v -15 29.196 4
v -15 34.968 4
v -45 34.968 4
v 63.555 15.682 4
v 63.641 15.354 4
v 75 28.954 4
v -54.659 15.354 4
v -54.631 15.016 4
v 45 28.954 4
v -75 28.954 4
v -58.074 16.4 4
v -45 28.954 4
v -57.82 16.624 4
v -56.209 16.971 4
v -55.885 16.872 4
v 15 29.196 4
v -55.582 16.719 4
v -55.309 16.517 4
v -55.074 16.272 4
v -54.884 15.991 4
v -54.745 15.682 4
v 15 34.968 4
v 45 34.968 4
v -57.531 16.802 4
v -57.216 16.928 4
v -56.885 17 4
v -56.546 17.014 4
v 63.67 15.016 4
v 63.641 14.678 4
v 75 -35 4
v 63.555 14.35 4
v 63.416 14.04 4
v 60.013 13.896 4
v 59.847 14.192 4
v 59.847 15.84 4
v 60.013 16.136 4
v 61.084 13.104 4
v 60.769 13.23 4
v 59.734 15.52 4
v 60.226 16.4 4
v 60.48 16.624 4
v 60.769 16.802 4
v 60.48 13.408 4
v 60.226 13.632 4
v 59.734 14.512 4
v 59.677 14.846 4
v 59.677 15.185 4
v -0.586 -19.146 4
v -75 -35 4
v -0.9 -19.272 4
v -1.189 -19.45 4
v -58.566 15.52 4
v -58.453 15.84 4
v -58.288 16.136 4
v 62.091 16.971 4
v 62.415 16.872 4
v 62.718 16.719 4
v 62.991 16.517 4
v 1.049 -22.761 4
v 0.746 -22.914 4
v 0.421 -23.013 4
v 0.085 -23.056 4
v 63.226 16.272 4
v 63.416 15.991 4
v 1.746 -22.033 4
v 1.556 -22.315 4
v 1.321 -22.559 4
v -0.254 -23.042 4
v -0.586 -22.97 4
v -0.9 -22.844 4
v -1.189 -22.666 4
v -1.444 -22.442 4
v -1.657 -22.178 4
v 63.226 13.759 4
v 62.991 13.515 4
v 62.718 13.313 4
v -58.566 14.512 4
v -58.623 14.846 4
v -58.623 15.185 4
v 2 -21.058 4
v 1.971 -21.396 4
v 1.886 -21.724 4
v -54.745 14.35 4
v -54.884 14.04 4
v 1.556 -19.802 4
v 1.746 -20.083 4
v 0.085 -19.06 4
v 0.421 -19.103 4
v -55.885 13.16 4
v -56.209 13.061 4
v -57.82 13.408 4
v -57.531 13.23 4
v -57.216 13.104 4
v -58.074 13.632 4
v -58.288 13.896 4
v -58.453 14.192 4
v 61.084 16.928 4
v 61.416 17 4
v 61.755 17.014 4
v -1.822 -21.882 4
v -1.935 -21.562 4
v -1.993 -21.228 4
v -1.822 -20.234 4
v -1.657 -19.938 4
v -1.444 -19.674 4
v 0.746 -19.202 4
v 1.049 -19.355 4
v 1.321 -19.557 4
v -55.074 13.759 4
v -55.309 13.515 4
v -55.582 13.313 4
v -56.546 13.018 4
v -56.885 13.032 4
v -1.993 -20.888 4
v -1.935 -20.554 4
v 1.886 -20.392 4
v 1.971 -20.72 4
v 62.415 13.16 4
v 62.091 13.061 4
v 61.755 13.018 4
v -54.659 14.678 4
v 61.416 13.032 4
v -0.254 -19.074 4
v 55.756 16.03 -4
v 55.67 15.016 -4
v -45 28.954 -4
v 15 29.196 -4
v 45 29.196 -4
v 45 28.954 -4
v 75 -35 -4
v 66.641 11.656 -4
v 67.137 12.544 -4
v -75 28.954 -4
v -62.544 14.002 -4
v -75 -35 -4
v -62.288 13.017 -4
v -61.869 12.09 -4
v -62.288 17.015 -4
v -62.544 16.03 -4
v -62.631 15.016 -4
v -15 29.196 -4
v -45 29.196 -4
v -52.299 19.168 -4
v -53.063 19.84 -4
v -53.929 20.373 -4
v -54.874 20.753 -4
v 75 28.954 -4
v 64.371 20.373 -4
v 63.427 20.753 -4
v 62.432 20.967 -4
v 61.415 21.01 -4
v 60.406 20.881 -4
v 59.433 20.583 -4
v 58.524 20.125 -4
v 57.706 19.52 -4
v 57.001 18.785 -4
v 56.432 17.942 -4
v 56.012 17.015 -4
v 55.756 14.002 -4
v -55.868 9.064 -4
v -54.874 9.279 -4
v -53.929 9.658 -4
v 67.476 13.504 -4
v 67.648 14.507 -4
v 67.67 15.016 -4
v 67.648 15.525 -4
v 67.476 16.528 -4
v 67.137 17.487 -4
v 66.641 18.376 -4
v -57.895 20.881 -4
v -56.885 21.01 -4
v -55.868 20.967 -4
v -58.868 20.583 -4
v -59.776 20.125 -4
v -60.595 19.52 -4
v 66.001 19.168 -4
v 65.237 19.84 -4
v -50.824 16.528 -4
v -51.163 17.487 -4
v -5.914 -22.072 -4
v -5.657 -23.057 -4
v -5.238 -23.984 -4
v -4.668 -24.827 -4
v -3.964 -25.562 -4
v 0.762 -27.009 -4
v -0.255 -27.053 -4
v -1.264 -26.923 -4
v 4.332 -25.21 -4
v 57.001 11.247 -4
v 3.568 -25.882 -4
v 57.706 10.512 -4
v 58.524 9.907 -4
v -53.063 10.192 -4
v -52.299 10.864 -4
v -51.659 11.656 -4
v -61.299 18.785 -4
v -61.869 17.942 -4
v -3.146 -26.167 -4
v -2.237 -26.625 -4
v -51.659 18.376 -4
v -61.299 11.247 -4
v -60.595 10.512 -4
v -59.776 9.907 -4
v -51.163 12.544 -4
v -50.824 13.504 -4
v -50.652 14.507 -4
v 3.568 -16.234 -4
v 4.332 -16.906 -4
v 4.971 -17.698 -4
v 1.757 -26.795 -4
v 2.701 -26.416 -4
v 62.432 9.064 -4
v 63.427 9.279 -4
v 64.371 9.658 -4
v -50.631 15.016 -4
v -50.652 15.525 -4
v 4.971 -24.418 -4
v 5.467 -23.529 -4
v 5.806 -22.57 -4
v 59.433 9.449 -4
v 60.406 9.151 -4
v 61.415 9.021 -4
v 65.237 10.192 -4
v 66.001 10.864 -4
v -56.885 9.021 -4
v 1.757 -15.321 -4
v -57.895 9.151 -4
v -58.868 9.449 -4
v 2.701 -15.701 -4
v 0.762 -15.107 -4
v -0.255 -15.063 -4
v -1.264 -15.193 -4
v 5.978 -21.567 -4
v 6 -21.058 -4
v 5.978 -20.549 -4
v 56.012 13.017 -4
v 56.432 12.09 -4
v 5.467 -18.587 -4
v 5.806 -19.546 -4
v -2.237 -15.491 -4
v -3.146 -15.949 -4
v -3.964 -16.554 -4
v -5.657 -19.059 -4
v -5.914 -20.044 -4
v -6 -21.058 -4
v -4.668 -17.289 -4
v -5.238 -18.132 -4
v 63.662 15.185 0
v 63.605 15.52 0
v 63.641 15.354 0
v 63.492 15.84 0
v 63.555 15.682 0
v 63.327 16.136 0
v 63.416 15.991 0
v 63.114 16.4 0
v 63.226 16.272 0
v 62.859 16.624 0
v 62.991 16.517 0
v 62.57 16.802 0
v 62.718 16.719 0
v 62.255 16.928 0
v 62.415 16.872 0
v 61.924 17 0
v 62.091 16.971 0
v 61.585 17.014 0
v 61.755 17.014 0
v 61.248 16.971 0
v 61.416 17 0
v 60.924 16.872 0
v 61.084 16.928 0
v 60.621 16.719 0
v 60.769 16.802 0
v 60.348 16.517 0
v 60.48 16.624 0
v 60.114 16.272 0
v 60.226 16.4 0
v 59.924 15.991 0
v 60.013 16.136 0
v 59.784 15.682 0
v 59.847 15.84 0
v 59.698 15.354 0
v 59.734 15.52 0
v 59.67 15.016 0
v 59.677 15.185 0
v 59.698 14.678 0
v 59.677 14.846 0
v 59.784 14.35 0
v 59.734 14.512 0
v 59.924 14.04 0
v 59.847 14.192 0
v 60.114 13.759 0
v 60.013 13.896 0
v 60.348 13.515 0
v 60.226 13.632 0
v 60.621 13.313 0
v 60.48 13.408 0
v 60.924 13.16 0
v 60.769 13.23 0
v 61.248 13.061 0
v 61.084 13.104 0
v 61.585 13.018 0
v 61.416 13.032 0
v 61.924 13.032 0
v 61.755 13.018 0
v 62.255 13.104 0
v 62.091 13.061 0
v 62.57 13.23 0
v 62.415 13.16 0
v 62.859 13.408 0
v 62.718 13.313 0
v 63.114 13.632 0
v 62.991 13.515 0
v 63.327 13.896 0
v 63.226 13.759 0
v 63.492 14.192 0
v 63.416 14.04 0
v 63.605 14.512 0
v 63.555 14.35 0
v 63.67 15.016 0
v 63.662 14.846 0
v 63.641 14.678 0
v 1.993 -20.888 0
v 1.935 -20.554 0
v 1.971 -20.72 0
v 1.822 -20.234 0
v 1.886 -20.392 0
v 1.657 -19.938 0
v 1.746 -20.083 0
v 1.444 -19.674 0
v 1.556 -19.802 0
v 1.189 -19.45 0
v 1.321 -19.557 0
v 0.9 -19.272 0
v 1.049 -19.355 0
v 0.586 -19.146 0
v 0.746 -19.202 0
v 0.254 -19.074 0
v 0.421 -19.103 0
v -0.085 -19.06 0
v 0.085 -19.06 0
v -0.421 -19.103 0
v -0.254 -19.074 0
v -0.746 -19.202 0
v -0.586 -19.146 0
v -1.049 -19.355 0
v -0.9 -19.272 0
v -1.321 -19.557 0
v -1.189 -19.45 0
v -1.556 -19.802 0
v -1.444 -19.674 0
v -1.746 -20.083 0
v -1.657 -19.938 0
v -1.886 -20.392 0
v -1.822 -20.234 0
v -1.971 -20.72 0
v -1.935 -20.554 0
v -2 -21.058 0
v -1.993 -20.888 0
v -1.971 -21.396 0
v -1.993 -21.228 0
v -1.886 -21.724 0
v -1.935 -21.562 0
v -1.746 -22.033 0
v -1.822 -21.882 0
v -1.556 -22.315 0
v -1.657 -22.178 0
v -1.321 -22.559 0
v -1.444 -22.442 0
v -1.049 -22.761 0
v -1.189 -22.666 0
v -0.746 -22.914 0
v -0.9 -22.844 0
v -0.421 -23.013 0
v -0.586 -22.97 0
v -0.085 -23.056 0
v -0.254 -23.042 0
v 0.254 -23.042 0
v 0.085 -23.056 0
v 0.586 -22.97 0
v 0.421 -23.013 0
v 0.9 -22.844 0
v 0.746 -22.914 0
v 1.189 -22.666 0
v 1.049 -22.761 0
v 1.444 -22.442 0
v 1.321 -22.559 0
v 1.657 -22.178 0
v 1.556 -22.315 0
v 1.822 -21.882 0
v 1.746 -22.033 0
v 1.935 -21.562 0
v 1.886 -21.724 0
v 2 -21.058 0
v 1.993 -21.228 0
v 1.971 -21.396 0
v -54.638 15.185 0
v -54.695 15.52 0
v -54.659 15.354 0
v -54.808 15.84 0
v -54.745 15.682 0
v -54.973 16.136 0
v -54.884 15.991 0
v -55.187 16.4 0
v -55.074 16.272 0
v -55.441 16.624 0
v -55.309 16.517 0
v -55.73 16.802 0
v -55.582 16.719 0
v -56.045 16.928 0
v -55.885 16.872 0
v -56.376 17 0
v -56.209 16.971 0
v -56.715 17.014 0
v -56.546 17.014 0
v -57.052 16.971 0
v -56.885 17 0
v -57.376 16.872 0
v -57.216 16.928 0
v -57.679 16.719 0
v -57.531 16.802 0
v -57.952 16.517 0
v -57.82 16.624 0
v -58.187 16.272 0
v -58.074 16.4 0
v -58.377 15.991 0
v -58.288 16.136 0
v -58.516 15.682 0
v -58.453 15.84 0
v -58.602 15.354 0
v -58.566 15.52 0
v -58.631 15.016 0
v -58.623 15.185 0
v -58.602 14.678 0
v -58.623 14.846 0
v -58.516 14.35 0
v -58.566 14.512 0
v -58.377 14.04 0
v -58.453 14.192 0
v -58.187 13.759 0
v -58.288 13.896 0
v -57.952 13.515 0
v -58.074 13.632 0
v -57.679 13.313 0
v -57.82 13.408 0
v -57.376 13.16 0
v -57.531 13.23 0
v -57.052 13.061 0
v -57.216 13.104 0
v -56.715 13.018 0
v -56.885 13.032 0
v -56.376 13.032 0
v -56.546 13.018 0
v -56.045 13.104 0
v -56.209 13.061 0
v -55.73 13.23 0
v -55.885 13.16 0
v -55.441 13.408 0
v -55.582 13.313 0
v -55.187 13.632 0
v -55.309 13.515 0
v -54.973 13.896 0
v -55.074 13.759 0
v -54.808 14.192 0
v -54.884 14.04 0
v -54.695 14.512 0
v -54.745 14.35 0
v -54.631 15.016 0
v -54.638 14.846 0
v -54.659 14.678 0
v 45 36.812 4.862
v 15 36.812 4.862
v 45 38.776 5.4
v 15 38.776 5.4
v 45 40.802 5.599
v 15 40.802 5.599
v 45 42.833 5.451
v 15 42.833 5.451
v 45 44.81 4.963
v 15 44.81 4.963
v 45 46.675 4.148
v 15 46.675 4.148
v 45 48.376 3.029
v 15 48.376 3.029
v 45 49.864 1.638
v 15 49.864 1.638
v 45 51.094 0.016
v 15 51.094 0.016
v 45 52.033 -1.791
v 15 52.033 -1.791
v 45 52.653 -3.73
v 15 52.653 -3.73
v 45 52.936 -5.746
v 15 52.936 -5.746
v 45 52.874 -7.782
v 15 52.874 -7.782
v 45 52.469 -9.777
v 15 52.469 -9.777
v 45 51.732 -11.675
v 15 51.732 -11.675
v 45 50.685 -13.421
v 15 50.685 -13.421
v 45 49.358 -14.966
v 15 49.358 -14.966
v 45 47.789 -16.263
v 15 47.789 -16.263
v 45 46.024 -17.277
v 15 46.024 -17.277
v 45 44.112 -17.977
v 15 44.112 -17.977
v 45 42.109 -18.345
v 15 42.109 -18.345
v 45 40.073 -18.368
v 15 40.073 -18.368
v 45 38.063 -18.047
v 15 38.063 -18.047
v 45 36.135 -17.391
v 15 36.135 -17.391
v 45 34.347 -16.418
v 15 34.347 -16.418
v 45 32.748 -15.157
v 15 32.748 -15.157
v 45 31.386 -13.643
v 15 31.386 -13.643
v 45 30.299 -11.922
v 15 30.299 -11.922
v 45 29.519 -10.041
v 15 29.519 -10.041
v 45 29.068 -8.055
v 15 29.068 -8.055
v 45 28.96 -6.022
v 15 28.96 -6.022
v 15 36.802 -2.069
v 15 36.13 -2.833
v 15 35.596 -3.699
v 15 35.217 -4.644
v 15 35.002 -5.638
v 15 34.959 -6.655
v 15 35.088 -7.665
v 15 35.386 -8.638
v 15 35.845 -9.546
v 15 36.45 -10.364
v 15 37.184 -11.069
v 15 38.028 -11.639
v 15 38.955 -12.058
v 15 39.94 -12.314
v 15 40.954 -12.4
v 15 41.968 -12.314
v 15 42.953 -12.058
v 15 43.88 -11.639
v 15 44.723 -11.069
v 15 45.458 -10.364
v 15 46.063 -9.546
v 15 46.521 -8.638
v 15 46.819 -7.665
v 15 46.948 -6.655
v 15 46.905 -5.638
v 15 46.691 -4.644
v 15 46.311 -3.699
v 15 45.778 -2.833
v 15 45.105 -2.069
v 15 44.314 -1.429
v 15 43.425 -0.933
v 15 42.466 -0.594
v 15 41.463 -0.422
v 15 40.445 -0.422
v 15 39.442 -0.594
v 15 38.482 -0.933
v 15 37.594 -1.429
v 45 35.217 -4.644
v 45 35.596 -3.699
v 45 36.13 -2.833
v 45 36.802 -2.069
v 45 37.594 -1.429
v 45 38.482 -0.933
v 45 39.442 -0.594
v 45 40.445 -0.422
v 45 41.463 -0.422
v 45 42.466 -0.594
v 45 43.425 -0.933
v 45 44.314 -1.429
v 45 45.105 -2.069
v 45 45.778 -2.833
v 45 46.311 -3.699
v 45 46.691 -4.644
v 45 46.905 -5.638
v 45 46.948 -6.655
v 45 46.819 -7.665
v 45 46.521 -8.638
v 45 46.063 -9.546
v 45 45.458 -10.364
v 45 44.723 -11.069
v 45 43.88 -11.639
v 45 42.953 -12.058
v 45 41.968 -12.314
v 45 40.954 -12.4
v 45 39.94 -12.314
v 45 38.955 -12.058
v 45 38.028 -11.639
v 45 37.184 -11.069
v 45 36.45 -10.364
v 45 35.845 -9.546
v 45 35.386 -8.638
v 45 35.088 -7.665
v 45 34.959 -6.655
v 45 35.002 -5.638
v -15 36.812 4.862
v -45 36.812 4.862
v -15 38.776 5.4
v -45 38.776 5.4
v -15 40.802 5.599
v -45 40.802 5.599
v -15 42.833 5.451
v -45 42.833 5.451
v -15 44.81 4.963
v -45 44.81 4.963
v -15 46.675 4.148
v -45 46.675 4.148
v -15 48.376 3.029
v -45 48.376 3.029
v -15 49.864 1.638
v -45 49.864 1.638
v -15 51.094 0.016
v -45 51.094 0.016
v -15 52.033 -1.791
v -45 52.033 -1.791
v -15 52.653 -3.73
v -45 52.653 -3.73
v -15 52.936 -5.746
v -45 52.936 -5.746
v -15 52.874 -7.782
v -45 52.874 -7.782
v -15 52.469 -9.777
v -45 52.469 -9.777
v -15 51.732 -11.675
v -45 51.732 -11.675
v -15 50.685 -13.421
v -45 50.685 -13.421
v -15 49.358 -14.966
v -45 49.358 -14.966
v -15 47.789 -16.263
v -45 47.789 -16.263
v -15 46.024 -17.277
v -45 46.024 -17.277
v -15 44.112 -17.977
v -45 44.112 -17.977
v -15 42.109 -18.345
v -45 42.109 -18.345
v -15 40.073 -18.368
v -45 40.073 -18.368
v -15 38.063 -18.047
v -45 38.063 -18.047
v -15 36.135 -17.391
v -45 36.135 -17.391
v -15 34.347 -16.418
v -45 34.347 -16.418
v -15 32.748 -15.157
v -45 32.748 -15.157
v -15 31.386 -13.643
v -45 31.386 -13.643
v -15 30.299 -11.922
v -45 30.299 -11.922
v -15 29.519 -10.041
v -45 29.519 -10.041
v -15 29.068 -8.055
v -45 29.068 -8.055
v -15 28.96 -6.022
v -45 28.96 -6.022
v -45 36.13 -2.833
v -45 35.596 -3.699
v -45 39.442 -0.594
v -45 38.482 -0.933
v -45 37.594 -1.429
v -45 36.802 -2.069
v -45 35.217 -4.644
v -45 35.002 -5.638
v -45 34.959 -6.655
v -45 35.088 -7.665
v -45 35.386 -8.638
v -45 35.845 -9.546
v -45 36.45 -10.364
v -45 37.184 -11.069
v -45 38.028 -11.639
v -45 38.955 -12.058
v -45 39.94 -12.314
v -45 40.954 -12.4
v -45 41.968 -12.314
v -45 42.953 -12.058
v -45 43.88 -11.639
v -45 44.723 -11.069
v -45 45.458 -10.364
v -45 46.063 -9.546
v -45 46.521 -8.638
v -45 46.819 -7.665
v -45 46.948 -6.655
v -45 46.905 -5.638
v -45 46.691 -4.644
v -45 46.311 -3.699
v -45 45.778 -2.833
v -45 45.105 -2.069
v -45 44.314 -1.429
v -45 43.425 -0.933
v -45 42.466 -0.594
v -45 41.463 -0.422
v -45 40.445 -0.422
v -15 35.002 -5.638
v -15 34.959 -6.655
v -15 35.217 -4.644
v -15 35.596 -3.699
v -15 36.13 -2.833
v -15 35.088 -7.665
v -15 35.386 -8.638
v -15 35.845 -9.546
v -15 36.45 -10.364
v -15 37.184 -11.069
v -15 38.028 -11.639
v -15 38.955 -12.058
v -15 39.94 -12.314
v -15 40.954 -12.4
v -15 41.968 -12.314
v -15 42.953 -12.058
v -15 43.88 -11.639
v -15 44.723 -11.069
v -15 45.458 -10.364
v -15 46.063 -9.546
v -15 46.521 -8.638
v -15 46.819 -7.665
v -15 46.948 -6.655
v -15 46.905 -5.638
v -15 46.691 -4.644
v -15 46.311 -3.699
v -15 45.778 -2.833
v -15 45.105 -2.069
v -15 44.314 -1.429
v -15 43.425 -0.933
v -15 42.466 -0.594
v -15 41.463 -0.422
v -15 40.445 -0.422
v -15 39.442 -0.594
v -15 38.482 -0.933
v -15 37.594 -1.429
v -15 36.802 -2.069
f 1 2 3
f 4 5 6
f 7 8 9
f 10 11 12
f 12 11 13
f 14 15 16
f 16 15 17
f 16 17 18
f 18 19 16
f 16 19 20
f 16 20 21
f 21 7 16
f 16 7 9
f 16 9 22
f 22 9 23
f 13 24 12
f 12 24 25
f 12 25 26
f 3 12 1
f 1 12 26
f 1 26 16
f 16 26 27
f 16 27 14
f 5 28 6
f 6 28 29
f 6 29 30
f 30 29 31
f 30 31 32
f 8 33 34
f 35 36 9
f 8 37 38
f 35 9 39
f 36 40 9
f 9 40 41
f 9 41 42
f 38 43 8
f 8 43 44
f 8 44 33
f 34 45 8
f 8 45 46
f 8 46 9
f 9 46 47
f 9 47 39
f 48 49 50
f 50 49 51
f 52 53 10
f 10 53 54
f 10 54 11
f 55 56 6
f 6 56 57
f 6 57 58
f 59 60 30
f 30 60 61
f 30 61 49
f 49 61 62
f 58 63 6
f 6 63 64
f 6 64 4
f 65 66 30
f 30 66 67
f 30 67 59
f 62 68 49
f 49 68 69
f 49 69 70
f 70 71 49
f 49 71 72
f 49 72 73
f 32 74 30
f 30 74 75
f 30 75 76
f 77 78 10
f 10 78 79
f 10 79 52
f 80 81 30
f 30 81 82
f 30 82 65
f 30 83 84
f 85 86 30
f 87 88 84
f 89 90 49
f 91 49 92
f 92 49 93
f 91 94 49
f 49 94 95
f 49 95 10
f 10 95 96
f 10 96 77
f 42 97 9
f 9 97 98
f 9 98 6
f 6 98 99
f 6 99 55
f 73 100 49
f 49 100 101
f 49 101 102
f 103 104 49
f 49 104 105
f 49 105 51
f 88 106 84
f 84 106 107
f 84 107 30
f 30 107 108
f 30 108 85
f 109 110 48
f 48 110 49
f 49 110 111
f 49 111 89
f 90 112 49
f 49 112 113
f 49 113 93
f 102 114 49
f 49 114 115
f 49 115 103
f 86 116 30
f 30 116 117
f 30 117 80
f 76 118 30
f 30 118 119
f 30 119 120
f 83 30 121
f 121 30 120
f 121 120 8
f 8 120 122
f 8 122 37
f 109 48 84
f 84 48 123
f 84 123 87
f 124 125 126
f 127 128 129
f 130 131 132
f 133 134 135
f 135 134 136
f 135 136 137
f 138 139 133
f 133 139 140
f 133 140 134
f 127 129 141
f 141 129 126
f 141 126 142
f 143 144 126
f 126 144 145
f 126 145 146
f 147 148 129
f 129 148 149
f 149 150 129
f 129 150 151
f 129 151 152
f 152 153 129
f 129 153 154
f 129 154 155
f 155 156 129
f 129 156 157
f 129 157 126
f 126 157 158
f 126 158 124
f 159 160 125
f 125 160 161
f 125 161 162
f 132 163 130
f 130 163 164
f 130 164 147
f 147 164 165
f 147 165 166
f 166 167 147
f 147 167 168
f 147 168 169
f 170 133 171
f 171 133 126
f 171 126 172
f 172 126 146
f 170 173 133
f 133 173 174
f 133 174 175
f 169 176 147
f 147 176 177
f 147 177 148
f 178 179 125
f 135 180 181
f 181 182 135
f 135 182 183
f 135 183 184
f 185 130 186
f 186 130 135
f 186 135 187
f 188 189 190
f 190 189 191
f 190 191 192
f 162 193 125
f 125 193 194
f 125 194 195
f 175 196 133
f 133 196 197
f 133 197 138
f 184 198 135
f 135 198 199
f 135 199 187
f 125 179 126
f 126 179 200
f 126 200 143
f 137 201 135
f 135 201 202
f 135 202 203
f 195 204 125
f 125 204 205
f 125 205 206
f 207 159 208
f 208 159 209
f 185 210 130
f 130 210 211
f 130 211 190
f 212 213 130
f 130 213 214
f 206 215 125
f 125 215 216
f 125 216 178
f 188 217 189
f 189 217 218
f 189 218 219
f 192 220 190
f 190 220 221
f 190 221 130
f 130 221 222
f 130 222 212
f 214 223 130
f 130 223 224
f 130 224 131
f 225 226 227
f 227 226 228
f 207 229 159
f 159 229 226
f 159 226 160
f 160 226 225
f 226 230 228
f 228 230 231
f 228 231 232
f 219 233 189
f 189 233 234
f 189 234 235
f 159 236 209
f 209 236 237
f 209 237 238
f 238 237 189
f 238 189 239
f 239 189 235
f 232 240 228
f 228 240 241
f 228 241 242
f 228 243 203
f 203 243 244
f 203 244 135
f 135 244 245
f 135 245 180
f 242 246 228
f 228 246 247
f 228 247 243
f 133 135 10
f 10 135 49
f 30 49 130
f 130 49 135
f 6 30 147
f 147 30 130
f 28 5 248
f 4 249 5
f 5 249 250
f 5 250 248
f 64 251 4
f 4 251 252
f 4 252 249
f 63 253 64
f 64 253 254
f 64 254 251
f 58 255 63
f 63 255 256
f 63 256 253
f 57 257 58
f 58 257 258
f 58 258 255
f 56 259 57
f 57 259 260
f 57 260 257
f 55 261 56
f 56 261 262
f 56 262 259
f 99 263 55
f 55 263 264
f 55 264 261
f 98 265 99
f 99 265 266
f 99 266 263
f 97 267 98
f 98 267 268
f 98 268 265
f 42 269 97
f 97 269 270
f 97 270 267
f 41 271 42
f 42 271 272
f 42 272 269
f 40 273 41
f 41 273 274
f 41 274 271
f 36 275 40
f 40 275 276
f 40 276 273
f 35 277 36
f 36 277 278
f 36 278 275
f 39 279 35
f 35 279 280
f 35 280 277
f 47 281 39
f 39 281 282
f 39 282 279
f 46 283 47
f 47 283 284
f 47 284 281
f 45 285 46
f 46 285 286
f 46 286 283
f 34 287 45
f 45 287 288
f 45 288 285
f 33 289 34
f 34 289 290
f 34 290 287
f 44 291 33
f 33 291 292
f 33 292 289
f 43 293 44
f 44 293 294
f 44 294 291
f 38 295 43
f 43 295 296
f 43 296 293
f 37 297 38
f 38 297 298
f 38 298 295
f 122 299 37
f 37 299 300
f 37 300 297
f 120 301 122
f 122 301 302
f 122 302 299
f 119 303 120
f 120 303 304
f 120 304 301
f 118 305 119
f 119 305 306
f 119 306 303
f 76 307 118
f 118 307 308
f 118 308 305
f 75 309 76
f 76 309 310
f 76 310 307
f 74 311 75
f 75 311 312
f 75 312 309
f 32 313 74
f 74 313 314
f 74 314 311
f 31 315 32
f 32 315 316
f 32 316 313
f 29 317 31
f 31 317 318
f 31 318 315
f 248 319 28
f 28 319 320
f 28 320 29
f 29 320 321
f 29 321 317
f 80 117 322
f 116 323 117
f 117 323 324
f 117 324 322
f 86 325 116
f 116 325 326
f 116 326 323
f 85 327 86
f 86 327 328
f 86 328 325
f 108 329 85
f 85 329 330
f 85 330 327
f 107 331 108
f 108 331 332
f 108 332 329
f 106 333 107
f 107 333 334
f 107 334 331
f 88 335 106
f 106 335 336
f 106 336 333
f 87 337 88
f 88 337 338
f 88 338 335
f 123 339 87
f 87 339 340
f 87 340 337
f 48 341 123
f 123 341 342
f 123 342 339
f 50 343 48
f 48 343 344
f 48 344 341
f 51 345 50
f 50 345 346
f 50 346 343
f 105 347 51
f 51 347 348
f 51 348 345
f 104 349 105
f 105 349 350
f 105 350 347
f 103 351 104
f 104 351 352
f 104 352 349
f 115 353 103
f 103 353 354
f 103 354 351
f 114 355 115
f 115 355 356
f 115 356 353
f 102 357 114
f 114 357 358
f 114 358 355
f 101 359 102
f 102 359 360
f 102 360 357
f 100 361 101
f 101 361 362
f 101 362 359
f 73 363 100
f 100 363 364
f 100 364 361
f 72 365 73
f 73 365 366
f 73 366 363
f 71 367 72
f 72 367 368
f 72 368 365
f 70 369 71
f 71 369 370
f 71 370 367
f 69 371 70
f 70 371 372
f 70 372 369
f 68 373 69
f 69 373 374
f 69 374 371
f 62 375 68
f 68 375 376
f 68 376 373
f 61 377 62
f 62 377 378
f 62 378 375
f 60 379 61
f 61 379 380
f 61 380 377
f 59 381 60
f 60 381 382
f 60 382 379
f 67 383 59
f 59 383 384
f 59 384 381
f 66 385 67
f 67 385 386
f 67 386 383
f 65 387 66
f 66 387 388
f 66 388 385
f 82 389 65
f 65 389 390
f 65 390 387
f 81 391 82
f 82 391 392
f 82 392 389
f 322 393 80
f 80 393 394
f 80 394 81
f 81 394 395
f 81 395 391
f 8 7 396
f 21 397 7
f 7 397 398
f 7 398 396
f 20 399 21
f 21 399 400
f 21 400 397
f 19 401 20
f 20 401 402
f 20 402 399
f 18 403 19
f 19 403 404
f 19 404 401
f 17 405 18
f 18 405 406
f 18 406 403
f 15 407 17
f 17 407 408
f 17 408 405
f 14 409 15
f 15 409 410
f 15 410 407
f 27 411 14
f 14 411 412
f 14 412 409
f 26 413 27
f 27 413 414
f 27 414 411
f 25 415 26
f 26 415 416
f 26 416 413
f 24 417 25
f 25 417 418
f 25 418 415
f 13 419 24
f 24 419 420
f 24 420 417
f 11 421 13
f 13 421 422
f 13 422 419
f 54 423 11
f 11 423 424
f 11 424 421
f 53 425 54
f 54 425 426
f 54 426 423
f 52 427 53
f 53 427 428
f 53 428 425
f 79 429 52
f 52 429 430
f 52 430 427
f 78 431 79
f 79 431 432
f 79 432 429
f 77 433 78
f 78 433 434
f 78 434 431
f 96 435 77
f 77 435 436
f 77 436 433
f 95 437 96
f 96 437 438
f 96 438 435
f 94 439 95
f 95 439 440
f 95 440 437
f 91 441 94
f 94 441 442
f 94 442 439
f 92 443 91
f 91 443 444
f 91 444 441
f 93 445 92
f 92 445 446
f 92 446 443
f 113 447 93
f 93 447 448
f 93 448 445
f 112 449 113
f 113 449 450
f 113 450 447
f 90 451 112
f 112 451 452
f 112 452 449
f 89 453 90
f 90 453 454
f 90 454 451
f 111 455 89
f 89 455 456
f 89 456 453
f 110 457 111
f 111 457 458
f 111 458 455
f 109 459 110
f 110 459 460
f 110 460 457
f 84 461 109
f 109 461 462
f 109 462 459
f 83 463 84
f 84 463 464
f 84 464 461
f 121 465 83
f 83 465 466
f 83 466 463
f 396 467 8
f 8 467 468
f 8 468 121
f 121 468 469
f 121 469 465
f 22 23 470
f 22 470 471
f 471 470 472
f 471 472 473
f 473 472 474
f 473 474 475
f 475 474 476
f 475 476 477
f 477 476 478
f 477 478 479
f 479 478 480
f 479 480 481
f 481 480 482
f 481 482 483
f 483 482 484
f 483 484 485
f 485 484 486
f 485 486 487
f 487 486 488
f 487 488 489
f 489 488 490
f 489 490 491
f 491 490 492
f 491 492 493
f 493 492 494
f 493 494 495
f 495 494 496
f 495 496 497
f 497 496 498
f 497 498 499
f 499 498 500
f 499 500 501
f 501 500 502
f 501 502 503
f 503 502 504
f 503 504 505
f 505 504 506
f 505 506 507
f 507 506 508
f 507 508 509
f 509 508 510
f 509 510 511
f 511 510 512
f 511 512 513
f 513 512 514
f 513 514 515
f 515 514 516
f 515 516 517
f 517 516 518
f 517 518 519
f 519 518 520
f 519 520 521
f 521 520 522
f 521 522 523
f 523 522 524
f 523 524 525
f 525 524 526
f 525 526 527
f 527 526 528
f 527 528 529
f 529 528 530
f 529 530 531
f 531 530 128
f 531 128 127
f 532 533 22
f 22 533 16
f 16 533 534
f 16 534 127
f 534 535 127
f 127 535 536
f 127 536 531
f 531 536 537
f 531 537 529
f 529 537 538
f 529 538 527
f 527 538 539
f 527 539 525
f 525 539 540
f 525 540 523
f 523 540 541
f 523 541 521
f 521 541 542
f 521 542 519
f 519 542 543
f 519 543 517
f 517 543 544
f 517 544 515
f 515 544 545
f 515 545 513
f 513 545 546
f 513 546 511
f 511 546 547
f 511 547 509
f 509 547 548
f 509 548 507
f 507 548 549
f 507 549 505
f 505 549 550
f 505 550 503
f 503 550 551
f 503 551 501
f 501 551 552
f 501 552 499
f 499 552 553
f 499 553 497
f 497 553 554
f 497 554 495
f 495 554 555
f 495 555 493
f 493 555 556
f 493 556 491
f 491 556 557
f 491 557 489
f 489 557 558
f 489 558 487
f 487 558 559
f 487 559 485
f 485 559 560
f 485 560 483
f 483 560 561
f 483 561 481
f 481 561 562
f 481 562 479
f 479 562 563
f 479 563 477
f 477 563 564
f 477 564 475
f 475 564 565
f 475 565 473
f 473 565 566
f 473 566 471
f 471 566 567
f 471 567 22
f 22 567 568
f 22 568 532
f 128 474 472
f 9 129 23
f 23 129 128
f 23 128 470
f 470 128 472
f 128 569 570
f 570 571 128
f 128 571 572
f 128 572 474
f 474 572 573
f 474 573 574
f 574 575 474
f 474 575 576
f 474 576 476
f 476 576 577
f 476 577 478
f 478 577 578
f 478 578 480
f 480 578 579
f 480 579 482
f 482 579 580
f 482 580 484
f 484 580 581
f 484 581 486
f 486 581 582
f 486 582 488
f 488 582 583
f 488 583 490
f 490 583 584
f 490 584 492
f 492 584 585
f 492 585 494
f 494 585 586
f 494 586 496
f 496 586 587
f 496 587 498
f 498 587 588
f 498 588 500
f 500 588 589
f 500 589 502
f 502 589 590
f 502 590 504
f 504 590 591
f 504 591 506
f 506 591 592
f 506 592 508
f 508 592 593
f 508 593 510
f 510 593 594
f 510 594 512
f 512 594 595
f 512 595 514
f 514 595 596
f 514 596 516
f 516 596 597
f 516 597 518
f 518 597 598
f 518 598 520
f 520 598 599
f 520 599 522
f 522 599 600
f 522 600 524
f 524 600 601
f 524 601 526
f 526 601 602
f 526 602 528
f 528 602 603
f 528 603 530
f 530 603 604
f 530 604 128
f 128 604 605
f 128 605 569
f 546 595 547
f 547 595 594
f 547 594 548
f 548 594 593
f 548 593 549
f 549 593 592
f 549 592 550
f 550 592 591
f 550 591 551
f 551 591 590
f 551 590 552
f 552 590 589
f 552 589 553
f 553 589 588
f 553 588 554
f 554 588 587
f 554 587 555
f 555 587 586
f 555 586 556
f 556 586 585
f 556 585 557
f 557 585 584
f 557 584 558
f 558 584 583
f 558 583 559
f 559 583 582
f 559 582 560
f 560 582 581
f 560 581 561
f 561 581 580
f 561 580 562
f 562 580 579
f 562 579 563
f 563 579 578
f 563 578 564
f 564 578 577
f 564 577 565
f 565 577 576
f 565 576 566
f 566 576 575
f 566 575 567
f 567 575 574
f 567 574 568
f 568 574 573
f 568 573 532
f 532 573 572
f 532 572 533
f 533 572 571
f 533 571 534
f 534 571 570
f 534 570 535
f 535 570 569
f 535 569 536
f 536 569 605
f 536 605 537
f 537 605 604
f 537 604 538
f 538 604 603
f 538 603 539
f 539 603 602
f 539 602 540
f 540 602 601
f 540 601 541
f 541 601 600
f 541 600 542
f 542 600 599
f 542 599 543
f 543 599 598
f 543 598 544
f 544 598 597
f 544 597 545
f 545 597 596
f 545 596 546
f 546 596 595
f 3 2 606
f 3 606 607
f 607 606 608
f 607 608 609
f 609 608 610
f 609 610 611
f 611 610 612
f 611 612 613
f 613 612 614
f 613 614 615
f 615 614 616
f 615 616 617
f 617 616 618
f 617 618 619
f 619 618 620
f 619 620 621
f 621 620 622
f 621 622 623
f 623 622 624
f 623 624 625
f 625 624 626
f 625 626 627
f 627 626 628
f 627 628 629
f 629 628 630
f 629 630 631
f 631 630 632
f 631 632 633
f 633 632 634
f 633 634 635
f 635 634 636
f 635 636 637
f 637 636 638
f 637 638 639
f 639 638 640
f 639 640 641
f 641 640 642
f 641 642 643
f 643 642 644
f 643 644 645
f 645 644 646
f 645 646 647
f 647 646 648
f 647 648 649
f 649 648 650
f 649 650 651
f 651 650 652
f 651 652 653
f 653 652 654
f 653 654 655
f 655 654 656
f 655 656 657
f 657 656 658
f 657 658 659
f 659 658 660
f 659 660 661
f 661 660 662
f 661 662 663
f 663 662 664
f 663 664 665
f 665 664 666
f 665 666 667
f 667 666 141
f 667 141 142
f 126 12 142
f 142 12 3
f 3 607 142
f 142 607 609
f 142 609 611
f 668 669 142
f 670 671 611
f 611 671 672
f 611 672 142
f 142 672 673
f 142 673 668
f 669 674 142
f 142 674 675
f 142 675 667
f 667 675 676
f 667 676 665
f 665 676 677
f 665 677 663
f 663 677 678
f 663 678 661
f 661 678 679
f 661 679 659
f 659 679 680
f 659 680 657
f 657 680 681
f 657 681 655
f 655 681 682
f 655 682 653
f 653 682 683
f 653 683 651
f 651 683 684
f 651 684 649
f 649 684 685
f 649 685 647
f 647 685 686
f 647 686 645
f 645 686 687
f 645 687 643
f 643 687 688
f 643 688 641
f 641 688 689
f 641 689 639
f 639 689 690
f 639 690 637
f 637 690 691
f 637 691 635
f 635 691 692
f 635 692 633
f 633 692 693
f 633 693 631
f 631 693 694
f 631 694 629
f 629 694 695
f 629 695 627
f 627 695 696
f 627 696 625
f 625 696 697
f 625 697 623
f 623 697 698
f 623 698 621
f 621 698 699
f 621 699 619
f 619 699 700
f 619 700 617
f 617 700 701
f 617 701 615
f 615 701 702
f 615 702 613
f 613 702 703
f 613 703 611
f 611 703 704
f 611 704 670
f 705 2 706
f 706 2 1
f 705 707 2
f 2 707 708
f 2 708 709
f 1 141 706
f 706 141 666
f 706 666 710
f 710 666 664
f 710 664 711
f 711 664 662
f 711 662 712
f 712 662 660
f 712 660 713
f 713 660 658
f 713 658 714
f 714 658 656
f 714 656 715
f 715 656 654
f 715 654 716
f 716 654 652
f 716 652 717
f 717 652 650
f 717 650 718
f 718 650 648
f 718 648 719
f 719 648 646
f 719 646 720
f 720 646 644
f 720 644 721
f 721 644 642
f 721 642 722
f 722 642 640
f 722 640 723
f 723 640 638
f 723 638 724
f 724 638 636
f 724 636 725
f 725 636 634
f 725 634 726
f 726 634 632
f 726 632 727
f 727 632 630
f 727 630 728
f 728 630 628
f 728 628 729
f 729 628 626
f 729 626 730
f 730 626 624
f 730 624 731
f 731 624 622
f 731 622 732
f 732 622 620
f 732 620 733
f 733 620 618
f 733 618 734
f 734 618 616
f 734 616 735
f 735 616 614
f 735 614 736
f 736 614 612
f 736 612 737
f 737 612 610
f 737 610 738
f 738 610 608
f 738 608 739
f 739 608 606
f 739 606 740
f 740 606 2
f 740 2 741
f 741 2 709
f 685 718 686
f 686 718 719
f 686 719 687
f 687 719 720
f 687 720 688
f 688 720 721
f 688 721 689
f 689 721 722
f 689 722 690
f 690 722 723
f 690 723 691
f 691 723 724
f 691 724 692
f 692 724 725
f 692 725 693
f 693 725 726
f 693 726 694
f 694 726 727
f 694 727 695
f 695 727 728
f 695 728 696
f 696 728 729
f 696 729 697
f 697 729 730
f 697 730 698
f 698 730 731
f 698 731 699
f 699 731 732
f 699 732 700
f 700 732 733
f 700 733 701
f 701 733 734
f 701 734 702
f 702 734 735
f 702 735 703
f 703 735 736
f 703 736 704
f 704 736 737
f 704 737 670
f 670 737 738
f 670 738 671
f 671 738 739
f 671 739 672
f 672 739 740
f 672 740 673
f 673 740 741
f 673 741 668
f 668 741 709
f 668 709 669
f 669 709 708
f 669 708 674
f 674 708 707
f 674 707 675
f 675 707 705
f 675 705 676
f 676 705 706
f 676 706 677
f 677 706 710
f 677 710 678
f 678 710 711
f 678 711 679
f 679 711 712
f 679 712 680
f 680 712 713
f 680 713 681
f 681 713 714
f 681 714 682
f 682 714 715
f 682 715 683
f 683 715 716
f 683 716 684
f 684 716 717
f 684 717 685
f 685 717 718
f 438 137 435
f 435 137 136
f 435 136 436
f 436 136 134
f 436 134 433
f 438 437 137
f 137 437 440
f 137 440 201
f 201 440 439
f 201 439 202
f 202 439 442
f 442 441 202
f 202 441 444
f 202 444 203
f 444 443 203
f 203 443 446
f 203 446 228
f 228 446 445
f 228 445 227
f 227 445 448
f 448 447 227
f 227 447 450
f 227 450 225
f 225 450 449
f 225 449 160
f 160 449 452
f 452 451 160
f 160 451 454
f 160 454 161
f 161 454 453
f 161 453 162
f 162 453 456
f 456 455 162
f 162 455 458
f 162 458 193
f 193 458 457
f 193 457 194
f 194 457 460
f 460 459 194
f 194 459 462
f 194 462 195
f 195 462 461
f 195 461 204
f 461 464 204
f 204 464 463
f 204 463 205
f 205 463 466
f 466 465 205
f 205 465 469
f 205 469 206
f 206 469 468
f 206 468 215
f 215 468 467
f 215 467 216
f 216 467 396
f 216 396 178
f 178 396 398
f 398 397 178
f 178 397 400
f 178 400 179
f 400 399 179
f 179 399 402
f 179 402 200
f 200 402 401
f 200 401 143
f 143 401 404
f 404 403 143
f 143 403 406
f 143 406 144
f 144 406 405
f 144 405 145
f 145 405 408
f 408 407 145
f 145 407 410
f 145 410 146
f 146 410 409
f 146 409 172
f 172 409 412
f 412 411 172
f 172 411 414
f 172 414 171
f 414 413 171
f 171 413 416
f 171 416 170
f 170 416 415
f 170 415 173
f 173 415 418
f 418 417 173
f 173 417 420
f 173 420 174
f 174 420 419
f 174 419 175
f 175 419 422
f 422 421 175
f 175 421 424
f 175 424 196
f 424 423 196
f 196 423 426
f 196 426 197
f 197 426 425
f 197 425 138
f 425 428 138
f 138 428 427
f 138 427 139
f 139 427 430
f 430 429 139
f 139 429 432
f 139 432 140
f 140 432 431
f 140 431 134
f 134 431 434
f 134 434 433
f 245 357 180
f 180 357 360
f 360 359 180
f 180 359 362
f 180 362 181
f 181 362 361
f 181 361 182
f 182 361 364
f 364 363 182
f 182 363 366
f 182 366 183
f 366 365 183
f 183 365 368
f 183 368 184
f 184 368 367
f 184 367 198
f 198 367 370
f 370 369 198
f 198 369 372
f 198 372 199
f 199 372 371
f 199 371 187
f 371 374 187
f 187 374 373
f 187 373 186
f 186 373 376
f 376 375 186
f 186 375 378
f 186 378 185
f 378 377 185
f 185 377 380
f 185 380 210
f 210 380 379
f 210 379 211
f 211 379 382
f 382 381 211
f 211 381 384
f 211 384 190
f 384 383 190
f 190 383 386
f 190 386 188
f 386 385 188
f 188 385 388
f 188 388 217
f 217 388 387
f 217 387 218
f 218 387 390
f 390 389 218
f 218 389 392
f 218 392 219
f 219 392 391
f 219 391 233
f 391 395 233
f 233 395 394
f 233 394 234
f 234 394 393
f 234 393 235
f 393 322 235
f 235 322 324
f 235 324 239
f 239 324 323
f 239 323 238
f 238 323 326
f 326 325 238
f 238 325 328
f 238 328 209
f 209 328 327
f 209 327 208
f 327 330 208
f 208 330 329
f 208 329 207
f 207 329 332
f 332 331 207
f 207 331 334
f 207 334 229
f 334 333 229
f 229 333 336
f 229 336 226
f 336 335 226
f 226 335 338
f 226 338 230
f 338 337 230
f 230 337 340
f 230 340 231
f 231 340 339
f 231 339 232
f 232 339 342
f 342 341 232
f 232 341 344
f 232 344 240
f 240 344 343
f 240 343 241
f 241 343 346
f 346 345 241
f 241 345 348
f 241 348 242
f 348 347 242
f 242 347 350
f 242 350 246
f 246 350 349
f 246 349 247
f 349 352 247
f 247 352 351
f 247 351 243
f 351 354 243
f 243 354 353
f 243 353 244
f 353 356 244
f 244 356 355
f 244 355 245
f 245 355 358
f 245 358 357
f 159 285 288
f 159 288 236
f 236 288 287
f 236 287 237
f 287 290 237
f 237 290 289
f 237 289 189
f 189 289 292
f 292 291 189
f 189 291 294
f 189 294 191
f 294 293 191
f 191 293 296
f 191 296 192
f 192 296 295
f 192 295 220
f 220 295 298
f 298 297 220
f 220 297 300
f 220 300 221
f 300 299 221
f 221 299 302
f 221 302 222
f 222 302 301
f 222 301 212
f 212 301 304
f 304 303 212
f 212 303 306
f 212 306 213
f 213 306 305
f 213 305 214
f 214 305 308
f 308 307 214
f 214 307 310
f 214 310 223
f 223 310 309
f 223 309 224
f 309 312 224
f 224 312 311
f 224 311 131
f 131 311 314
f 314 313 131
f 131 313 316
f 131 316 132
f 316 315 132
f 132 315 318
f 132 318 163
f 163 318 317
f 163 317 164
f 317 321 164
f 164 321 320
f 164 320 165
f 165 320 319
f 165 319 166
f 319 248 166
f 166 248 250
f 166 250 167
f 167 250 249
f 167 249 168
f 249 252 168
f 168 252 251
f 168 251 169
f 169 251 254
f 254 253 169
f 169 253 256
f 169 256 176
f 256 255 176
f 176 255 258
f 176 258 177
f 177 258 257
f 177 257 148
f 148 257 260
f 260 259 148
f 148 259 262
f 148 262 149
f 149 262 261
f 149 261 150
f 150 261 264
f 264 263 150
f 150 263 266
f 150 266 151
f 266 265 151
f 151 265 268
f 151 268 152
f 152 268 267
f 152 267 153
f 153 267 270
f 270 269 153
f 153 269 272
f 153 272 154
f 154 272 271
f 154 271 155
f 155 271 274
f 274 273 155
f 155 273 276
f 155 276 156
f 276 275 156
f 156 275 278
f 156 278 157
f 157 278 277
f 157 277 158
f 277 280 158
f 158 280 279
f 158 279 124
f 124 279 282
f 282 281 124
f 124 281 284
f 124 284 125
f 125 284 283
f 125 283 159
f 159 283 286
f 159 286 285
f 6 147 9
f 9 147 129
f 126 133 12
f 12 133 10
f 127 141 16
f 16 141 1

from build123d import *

# Parameters (mm, degrees)
SKETCH1_W           = 150
SKETCH1_H           = 70
BOSS_EXTRUDE1_DEPTH = 4
SKETCH7_R           = 2
CUT_EXTRUDE2_DEPTH  = 30
BOSS_EXTRUDE7_START = -30
SKETCH4_R           = 12
SKETCH4_R_2         = 6
BOSS_EXTRUDE7_DEPTH = 30
LPATTERN2_COUNT     = 2
LPATTERN2_PITCH     = 60
CHAMFER3_SIZE       = 4
SKETCH8_W           = 30
SKETCH8_H           = 6.046246811
CUT_EXTRUDE3_DEPTH  = 10
SKETCH9_W           = 30
SKETCH9_H           = 6.046246811
CUT_EXTRUDE4_DEPTH  = 10
SKETCH10_W          = 30
SKETCH10_H          = 5.803707669
CUT_EXTRUDE5_DEPTH  = 10


with BuildPart() as part:
    # Sketch1 → Boss-Extrude1 (new body, symmetric)
    with BuildSketch(Plane.XY):
        Rectangle(SKETCH1_W, SKETCH1_H)
    extrude(amount=BOSS_EXTRUDE1_DEPTH, both=True)

    # Sketch7 → Cut-Extrude2 (cut)
    with BuildSketch(Plane.XY.offset(4)):
        with Locations((-56.630501899, 15.015863732)):
            Circle(SKETCH7_R)
        with Locations((0, -21.058085924)):
            Circle(SKETCH7_R)
        with Locations((61.669656729, 15.015863732)):
            Circle(SKETCH7_R)
    extrude(amount=-CUT_EXTRUDE2_DEPTH, mode=Mode.SUBTRACT)

    # Sketch4 → Boss-Extrude7 (add)
    with BuildSketch(Plane(origin=(75, 0, 0), x_dir=(0, 0, -1), z_dir=(1, 0, 0)).offset(BOSS_EXTRUDE7_START)):
        with Locations((6.400440408, 40.953753189)):
            Circle(SKETCH4_R)
        with Locations((6.400440408, 40.953753189)):
            Circle(SKETCH4_R_2, mode=Mode.SUBTRACT)
    boss_extrude7 = extrude(amount=-BOSS_EXTRUDE7_DEPTH)

    # LPattern2: Boss-Extrude7 ×2
    with Locations(*[(-i * LPATTERN2_PITCH, 0, 0) for i in range(1, LPATTERN2_COUNT)]):
        add(boss_extrude7)

    # Chamfer3
    chamfer3_edges = [part.edges().sort_by_distance(p)[0] for p in [
        (-58.630501899, 15.015863732, -4),
        (-2, -21.058085924, -4),
        (59.669656729, 15.015863732, -4),
    ]]
    chamfer(chamfer3_edges, length=CHAMFER3_SIZE)

    # Sketch8 → Cut-Extrude3 (cut)
    with BuildSketch(Plane.XY.offset(4)):
        with Locations((60, 31.976876594)):
            Rectangle(SKETCH8_W, SKETCH8_H)
    extrude(amount=-CUT_EXTRUDE3_DEPTH, mode=Mode.SUBTRACT)

    # Sketch9 → Cut-Extrude4 (cut)
    with BuildSketch(Plane(origin=(0, 0, -4), x_dir=(-1, 0, 0), z_dir=(0, 0, -1))):
        with Locations((60, 31.976876594)):
            Rectangle(SKETCH9_W, SKETCH9_H)
    extrude(amount=-CUT_EXTRUDE4_DEPTH, mode=Mode.SUBTRACT)

    # Sketch10 → Cut-Extrude5 (cut)
    with BuildSketch(Plane(origin=(0, 0, -4), x_dir=(-1, 0, 0), z_dir=(0, 0, -1))):
        with Locations((0, 32.098146165)):
            Rectangle(SKETCH10_W, SKETCH10_H)
    extrude(amount=-CUT_EXTRUDE5_DEPTH, mode=Mode.SUBTRACT)


solid = part.part
